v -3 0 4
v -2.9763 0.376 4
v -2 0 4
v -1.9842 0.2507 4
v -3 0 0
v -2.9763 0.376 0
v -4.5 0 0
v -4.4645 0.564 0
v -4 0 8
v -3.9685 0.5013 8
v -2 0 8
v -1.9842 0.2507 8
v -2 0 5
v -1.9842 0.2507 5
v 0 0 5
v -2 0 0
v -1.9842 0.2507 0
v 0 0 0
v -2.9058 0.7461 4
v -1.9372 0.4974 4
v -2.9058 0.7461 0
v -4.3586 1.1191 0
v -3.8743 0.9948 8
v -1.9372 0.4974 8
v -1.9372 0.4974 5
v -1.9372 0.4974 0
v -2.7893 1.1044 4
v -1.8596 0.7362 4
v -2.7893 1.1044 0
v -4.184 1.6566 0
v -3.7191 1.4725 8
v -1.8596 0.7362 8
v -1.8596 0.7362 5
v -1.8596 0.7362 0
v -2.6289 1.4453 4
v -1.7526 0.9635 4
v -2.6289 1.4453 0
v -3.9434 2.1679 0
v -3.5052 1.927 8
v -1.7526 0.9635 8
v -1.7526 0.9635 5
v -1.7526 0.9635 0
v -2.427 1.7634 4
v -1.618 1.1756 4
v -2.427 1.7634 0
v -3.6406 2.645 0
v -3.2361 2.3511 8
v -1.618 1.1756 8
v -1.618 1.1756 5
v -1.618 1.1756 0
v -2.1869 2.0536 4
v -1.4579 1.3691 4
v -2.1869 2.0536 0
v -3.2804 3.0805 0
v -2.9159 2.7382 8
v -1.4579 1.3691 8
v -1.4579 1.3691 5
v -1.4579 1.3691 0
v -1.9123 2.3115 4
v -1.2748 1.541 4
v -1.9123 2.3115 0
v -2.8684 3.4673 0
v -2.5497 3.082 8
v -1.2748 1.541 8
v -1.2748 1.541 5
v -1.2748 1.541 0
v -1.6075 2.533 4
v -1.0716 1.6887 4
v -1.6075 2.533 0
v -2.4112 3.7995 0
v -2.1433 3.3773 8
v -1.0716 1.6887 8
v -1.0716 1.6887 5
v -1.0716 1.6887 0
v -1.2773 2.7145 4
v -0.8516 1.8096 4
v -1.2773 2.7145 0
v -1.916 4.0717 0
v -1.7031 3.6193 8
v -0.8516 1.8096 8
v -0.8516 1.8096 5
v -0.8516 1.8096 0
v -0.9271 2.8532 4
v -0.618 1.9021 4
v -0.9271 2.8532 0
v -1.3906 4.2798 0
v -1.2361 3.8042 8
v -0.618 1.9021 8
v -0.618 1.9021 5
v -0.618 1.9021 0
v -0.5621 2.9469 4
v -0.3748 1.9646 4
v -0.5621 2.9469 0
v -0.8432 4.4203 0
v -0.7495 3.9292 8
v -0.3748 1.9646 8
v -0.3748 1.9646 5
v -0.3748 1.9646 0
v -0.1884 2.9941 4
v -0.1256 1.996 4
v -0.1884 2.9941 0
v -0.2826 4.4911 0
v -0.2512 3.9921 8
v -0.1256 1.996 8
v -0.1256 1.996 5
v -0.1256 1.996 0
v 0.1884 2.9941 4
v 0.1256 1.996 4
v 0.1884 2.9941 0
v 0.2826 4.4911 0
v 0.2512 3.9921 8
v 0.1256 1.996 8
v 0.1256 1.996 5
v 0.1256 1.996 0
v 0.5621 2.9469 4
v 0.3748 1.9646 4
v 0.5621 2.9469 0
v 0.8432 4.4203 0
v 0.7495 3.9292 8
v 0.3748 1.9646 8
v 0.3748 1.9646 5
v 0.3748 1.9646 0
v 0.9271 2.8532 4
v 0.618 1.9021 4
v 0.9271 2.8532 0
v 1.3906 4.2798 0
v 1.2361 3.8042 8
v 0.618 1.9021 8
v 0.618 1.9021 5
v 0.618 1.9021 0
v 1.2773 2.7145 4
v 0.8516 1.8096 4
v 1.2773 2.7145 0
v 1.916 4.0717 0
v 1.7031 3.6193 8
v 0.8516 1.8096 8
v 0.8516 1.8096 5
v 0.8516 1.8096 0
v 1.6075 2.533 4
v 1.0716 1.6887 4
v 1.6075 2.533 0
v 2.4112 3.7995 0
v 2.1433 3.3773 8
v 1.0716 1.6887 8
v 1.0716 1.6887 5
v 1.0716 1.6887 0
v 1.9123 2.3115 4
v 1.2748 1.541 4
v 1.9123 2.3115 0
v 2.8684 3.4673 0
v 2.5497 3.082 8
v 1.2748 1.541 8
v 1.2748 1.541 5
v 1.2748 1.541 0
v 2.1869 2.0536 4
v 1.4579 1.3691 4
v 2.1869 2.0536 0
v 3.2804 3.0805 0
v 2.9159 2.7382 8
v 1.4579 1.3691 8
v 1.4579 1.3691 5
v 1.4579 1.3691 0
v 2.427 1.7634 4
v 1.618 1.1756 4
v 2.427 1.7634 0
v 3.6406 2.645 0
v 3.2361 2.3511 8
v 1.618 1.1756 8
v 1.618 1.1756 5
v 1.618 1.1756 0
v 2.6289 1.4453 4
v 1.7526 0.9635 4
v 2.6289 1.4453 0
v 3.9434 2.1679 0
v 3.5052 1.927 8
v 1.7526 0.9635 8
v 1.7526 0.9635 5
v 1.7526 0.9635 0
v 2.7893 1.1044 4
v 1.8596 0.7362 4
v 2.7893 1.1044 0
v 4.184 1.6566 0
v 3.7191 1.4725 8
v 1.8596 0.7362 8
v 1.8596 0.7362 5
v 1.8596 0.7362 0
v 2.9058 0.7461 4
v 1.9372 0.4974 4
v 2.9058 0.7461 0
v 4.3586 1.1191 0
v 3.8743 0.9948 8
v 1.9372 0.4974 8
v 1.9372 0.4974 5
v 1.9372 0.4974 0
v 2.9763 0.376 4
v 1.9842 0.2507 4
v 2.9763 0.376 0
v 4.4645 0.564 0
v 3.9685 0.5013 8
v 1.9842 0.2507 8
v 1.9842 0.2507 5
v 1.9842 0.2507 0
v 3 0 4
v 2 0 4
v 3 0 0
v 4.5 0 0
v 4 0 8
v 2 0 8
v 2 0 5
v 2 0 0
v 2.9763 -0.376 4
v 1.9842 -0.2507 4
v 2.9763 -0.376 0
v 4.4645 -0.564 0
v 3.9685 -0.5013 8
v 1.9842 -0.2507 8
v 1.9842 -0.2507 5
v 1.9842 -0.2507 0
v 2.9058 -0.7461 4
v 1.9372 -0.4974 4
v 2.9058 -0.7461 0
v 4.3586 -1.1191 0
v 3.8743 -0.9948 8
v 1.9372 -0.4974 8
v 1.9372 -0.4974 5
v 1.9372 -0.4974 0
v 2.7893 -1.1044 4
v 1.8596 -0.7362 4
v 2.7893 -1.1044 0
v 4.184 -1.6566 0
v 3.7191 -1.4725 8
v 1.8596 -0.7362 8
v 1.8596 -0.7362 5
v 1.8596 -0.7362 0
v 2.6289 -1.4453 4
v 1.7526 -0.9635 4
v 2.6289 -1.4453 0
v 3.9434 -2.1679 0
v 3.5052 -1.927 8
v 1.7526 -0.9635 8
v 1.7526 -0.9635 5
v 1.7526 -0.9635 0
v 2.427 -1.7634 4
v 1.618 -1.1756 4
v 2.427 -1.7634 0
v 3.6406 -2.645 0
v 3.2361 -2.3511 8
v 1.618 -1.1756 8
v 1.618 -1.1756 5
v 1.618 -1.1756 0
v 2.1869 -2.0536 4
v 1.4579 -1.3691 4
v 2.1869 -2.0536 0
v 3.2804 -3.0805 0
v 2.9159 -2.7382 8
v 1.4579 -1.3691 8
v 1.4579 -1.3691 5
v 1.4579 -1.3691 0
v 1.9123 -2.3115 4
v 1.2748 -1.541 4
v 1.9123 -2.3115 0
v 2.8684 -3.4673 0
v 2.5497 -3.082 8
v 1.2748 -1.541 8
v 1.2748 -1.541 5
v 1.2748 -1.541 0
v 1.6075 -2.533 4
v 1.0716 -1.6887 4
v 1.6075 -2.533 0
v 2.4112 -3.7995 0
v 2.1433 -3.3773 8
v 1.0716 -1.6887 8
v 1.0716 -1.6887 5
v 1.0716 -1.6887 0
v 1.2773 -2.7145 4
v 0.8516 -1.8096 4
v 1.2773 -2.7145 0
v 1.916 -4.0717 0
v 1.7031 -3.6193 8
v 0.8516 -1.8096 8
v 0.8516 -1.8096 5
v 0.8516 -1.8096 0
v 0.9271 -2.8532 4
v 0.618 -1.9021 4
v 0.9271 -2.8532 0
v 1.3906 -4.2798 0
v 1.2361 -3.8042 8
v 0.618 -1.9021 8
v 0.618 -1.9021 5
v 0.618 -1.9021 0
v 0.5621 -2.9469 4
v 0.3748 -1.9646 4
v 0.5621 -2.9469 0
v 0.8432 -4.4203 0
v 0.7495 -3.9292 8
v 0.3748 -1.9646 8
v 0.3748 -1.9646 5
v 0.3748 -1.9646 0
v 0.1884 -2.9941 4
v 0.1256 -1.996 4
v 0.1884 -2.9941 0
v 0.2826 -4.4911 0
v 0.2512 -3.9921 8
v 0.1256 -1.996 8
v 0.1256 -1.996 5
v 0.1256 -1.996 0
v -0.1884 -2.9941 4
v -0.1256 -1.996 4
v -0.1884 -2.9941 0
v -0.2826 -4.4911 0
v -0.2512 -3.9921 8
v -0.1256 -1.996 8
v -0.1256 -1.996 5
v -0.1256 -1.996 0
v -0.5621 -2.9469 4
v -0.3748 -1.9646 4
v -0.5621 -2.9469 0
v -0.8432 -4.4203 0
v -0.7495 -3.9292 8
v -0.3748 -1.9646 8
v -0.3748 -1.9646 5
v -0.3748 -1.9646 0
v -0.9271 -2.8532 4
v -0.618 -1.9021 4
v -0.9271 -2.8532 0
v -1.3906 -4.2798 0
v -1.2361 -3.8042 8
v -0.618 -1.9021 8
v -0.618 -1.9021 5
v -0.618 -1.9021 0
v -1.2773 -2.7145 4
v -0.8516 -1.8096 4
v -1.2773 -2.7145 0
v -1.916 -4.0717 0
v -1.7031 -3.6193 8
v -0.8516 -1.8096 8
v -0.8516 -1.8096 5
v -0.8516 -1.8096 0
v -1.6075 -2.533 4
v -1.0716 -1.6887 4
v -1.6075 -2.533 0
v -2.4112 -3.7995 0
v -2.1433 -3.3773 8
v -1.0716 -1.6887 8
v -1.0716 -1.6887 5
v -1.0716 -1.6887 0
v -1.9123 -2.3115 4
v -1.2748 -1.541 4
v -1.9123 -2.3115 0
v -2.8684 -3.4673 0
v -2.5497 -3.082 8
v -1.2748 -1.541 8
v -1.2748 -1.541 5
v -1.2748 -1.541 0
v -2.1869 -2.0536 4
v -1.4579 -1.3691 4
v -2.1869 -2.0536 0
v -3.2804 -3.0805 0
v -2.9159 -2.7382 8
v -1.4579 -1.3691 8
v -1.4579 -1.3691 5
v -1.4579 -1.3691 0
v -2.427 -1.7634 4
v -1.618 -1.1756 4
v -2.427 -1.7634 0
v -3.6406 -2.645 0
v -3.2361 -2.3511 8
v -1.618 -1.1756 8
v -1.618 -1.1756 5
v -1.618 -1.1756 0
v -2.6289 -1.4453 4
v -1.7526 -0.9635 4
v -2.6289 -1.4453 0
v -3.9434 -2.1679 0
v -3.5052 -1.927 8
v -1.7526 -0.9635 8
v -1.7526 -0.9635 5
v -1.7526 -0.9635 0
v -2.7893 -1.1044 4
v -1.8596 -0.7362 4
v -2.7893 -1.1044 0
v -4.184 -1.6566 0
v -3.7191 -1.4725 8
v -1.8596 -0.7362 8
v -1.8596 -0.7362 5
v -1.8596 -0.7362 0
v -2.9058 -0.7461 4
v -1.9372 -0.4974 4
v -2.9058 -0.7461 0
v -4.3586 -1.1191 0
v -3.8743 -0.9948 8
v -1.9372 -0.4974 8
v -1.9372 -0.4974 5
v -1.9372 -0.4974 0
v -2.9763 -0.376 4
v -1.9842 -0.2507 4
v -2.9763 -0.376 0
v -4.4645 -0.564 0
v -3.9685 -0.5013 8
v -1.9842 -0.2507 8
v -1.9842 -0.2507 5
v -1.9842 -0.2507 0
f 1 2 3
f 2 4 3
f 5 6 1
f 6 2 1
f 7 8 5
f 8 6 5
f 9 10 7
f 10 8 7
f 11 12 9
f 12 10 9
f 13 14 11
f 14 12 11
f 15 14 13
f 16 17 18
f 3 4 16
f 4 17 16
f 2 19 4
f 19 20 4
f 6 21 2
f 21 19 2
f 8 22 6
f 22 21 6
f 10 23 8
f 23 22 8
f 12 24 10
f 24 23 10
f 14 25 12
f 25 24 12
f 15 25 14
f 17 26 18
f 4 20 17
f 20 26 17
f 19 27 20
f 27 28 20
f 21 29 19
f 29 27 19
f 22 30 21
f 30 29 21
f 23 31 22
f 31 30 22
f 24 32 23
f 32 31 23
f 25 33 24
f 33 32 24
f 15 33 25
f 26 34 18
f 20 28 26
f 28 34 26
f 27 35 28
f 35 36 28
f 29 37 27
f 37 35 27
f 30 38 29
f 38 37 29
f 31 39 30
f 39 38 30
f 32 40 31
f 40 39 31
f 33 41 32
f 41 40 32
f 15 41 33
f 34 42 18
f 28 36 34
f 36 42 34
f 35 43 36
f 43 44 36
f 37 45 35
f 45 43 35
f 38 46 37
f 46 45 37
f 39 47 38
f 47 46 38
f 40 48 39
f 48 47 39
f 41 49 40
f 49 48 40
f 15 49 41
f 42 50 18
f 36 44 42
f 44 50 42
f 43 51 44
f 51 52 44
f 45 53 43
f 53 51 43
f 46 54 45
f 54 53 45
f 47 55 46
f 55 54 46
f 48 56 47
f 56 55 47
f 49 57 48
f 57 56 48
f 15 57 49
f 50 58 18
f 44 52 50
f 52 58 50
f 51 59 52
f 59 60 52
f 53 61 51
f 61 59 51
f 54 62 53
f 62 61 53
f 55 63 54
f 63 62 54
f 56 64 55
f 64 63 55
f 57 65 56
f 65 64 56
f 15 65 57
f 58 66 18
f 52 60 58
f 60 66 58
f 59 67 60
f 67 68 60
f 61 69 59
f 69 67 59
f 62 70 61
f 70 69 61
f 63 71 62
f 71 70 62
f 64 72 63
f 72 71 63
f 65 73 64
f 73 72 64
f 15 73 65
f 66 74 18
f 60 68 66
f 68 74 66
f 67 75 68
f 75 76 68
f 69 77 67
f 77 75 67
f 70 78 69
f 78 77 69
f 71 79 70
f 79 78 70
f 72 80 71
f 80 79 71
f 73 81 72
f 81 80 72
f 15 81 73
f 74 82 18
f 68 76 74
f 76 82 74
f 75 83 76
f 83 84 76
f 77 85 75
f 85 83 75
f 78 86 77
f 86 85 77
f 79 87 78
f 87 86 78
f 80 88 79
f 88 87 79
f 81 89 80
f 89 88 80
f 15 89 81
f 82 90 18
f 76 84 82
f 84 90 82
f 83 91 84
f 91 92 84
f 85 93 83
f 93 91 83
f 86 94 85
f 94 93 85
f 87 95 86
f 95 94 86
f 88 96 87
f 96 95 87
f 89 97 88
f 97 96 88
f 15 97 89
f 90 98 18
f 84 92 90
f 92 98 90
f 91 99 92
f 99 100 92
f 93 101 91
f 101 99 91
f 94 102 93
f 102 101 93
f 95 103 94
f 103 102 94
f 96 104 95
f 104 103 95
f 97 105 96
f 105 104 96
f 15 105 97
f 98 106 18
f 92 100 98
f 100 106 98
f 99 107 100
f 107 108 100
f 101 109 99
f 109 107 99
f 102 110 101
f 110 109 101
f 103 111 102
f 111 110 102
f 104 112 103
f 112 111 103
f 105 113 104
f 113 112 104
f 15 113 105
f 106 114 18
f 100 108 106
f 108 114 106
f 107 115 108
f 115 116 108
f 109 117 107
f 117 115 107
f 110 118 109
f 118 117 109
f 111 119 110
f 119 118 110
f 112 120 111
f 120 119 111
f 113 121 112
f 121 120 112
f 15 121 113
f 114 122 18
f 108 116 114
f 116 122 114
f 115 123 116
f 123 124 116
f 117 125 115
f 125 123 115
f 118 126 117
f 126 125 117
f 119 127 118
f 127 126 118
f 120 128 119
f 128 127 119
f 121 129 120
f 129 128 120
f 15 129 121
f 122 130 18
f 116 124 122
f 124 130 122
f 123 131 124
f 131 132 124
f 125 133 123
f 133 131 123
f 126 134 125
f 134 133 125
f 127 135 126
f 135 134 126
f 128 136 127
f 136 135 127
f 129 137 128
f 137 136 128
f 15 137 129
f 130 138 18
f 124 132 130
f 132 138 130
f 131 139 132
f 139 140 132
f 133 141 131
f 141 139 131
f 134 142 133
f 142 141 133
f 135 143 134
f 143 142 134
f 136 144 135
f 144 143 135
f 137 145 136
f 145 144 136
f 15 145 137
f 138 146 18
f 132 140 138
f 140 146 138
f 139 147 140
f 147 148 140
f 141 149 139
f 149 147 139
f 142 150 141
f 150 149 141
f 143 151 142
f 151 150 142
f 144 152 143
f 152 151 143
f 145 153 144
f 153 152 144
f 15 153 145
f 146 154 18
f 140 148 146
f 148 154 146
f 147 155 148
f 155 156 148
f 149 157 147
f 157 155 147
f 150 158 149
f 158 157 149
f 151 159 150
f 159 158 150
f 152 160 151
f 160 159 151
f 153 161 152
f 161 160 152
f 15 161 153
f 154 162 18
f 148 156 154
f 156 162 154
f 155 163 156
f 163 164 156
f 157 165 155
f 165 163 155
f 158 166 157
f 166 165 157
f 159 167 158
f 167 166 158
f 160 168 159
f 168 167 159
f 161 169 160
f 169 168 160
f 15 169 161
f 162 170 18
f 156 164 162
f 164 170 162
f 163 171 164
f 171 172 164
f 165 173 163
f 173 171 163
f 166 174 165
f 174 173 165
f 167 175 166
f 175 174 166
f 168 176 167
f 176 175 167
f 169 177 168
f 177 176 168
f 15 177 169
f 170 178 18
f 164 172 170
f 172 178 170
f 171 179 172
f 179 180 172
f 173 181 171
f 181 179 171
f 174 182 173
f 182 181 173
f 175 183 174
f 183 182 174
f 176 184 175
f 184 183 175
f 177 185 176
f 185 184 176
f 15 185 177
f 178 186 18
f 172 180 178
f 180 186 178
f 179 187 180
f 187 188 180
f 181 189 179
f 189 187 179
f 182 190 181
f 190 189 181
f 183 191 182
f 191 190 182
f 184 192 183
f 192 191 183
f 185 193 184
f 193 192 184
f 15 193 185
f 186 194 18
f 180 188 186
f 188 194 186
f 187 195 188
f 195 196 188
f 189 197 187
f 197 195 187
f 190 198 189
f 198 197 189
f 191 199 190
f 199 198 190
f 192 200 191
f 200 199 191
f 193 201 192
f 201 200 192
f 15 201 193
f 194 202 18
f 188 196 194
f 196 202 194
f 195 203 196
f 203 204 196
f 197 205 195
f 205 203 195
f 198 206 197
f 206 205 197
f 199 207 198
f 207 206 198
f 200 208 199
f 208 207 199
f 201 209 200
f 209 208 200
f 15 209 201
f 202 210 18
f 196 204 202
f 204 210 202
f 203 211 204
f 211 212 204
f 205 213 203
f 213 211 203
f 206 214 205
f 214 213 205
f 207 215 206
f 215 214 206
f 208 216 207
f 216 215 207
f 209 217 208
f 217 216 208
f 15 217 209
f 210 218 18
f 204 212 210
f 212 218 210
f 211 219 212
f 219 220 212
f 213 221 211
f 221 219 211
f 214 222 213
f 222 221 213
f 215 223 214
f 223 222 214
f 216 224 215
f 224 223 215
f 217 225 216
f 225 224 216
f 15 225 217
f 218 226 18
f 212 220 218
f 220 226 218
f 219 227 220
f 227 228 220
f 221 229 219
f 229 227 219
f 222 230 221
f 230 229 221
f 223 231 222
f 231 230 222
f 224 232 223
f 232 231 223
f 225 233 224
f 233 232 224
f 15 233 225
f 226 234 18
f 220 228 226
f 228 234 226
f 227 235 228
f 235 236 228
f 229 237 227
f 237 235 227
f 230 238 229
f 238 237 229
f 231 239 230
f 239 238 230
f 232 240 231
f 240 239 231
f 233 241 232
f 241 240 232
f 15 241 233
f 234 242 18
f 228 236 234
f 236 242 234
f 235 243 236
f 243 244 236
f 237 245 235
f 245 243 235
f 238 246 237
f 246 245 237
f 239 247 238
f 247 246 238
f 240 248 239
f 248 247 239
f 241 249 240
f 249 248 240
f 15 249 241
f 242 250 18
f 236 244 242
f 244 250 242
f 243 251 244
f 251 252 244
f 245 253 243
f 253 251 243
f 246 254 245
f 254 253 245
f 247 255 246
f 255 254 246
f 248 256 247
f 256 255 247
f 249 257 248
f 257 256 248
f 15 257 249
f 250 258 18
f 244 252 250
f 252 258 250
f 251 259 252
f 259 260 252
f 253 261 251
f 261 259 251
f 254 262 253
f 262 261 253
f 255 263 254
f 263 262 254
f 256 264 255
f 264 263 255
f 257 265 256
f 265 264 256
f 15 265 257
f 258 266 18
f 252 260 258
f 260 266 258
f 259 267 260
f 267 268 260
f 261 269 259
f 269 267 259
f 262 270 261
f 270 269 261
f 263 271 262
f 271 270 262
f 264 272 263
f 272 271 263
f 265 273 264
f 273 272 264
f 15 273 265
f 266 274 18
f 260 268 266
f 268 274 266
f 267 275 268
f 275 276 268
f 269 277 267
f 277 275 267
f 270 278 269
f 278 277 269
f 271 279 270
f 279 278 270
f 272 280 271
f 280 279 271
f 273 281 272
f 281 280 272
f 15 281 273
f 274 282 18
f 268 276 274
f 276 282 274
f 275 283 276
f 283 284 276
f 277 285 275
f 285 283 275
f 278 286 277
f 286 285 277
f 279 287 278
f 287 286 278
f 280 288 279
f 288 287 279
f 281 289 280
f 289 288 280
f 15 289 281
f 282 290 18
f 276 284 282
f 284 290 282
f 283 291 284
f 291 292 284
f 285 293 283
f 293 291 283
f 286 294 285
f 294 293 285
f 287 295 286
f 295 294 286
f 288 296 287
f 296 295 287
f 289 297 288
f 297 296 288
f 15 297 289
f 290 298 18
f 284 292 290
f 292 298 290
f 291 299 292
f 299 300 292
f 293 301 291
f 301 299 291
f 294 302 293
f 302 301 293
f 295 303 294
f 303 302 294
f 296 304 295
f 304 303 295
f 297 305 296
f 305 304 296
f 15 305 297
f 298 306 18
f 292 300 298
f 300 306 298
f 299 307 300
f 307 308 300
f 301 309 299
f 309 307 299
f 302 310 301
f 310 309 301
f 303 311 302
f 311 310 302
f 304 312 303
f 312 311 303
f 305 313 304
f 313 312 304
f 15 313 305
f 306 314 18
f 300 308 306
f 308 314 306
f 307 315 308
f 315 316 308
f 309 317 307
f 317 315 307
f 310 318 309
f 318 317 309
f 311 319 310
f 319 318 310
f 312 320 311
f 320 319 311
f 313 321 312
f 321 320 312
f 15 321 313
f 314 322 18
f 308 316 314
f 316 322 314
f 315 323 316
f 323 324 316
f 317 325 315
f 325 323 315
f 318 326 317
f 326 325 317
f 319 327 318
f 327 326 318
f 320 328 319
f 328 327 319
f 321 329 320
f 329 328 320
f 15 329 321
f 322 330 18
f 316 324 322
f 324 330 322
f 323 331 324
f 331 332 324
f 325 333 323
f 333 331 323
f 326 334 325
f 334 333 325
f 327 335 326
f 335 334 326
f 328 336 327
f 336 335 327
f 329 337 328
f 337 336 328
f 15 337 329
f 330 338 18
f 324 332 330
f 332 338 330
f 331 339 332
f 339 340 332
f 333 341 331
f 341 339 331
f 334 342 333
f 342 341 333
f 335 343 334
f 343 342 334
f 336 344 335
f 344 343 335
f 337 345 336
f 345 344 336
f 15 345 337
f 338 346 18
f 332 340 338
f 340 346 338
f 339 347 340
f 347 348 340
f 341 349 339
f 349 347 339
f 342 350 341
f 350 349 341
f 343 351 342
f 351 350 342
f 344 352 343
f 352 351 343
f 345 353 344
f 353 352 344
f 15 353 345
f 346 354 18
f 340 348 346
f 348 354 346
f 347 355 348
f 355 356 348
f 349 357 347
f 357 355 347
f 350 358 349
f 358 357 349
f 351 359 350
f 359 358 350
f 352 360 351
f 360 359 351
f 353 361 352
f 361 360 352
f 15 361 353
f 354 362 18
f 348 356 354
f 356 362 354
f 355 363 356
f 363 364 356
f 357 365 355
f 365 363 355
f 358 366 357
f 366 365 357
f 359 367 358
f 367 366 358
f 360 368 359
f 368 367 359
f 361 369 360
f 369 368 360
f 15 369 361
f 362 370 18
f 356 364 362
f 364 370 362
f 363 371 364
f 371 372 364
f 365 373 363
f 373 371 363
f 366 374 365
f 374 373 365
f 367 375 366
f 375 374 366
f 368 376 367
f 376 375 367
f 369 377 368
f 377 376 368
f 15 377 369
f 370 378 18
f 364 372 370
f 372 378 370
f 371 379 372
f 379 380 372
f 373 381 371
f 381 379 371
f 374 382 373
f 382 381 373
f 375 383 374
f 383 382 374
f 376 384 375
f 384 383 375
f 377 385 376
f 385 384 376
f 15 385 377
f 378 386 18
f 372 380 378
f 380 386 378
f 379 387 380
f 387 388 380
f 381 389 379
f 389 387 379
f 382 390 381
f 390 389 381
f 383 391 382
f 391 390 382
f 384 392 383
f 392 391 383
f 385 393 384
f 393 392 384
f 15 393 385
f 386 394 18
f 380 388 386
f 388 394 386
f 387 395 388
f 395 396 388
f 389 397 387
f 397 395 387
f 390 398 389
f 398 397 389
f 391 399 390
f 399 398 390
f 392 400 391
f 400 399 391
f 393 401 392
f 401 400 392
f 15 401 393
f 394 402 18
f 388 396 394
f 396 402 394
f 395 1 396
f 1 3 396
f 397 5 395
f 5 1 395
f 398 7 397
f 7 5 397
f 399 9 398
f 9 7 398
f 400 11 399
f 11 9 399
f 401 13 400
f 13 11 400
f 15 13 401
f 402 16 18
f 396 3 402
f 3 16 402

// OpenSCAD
$fn=50;

pruhlednost=0.6;
//pruhlednost=1.0;

vyska = 8;

hloubka_horni = 3;

prumer_horni_vnejsi = 8;
prumer_horni_vnitrni = 4;

polomer_horni_vnitrni = prumer_horni_vnitrni / 2;

wt_horni = (prumer_horni_vnejsi- prumer_horni_vnitrni) / 2;

prumer_spodni_vnejsi = 9; 
prumer_spodni_stred = 6; 
prumer_spodni_vnitrni = 4; 

polomer_spodni_stred = prumer_spodni_stred / 2;
polomer_spodni_vnitrni = prumer_spodni_vnitrni / 2;


hloubka_spodni = 4;

wt_spodni = (prumer_spodni_vnejsi - prumer_spodni_stred) / 2;

module zaslepka_obrys() 
    {
    p00 = [0, 0];
    p01 = [polomer_spodni_vnitrni, 0];
    p02 = [polomer_spodni_vnitrni, hloubka_spodni];
    p03 = [polomer_spodni_stred, hloubka_spodni];
    p04 = [polomer_spodni_stred, 0];
    p05 = [prumer_spodni_vnejsi / 2, 0];
    p06 = [prumer_horni_vnejsi / 2, vyska];
    p07 = [polomer_horni_vnitrni, vyska];
    p08 = [polomer_horni_vnitrni, vyska - hloubka_horni];
    p09 = [0, vyska - hloubka_horni];
        
    points=[
        p00, 
        p01, 
        p02,
        p03, 
        p04, 
        p05,
        p06, 
        p07, 
        p08,
        p09,
        ];
        
    polygon(points);
    }
    
module zaslepka_3d()
    color("crimson", pruhlednost)
    translate([0, 0, 0])
    rotate([0, 0, 0])
    rotate_extrude(angle=360)
    zaslepka_obrys();    
    
//zaslepka_obrys();
    
zaslepka_3d(); 
   
